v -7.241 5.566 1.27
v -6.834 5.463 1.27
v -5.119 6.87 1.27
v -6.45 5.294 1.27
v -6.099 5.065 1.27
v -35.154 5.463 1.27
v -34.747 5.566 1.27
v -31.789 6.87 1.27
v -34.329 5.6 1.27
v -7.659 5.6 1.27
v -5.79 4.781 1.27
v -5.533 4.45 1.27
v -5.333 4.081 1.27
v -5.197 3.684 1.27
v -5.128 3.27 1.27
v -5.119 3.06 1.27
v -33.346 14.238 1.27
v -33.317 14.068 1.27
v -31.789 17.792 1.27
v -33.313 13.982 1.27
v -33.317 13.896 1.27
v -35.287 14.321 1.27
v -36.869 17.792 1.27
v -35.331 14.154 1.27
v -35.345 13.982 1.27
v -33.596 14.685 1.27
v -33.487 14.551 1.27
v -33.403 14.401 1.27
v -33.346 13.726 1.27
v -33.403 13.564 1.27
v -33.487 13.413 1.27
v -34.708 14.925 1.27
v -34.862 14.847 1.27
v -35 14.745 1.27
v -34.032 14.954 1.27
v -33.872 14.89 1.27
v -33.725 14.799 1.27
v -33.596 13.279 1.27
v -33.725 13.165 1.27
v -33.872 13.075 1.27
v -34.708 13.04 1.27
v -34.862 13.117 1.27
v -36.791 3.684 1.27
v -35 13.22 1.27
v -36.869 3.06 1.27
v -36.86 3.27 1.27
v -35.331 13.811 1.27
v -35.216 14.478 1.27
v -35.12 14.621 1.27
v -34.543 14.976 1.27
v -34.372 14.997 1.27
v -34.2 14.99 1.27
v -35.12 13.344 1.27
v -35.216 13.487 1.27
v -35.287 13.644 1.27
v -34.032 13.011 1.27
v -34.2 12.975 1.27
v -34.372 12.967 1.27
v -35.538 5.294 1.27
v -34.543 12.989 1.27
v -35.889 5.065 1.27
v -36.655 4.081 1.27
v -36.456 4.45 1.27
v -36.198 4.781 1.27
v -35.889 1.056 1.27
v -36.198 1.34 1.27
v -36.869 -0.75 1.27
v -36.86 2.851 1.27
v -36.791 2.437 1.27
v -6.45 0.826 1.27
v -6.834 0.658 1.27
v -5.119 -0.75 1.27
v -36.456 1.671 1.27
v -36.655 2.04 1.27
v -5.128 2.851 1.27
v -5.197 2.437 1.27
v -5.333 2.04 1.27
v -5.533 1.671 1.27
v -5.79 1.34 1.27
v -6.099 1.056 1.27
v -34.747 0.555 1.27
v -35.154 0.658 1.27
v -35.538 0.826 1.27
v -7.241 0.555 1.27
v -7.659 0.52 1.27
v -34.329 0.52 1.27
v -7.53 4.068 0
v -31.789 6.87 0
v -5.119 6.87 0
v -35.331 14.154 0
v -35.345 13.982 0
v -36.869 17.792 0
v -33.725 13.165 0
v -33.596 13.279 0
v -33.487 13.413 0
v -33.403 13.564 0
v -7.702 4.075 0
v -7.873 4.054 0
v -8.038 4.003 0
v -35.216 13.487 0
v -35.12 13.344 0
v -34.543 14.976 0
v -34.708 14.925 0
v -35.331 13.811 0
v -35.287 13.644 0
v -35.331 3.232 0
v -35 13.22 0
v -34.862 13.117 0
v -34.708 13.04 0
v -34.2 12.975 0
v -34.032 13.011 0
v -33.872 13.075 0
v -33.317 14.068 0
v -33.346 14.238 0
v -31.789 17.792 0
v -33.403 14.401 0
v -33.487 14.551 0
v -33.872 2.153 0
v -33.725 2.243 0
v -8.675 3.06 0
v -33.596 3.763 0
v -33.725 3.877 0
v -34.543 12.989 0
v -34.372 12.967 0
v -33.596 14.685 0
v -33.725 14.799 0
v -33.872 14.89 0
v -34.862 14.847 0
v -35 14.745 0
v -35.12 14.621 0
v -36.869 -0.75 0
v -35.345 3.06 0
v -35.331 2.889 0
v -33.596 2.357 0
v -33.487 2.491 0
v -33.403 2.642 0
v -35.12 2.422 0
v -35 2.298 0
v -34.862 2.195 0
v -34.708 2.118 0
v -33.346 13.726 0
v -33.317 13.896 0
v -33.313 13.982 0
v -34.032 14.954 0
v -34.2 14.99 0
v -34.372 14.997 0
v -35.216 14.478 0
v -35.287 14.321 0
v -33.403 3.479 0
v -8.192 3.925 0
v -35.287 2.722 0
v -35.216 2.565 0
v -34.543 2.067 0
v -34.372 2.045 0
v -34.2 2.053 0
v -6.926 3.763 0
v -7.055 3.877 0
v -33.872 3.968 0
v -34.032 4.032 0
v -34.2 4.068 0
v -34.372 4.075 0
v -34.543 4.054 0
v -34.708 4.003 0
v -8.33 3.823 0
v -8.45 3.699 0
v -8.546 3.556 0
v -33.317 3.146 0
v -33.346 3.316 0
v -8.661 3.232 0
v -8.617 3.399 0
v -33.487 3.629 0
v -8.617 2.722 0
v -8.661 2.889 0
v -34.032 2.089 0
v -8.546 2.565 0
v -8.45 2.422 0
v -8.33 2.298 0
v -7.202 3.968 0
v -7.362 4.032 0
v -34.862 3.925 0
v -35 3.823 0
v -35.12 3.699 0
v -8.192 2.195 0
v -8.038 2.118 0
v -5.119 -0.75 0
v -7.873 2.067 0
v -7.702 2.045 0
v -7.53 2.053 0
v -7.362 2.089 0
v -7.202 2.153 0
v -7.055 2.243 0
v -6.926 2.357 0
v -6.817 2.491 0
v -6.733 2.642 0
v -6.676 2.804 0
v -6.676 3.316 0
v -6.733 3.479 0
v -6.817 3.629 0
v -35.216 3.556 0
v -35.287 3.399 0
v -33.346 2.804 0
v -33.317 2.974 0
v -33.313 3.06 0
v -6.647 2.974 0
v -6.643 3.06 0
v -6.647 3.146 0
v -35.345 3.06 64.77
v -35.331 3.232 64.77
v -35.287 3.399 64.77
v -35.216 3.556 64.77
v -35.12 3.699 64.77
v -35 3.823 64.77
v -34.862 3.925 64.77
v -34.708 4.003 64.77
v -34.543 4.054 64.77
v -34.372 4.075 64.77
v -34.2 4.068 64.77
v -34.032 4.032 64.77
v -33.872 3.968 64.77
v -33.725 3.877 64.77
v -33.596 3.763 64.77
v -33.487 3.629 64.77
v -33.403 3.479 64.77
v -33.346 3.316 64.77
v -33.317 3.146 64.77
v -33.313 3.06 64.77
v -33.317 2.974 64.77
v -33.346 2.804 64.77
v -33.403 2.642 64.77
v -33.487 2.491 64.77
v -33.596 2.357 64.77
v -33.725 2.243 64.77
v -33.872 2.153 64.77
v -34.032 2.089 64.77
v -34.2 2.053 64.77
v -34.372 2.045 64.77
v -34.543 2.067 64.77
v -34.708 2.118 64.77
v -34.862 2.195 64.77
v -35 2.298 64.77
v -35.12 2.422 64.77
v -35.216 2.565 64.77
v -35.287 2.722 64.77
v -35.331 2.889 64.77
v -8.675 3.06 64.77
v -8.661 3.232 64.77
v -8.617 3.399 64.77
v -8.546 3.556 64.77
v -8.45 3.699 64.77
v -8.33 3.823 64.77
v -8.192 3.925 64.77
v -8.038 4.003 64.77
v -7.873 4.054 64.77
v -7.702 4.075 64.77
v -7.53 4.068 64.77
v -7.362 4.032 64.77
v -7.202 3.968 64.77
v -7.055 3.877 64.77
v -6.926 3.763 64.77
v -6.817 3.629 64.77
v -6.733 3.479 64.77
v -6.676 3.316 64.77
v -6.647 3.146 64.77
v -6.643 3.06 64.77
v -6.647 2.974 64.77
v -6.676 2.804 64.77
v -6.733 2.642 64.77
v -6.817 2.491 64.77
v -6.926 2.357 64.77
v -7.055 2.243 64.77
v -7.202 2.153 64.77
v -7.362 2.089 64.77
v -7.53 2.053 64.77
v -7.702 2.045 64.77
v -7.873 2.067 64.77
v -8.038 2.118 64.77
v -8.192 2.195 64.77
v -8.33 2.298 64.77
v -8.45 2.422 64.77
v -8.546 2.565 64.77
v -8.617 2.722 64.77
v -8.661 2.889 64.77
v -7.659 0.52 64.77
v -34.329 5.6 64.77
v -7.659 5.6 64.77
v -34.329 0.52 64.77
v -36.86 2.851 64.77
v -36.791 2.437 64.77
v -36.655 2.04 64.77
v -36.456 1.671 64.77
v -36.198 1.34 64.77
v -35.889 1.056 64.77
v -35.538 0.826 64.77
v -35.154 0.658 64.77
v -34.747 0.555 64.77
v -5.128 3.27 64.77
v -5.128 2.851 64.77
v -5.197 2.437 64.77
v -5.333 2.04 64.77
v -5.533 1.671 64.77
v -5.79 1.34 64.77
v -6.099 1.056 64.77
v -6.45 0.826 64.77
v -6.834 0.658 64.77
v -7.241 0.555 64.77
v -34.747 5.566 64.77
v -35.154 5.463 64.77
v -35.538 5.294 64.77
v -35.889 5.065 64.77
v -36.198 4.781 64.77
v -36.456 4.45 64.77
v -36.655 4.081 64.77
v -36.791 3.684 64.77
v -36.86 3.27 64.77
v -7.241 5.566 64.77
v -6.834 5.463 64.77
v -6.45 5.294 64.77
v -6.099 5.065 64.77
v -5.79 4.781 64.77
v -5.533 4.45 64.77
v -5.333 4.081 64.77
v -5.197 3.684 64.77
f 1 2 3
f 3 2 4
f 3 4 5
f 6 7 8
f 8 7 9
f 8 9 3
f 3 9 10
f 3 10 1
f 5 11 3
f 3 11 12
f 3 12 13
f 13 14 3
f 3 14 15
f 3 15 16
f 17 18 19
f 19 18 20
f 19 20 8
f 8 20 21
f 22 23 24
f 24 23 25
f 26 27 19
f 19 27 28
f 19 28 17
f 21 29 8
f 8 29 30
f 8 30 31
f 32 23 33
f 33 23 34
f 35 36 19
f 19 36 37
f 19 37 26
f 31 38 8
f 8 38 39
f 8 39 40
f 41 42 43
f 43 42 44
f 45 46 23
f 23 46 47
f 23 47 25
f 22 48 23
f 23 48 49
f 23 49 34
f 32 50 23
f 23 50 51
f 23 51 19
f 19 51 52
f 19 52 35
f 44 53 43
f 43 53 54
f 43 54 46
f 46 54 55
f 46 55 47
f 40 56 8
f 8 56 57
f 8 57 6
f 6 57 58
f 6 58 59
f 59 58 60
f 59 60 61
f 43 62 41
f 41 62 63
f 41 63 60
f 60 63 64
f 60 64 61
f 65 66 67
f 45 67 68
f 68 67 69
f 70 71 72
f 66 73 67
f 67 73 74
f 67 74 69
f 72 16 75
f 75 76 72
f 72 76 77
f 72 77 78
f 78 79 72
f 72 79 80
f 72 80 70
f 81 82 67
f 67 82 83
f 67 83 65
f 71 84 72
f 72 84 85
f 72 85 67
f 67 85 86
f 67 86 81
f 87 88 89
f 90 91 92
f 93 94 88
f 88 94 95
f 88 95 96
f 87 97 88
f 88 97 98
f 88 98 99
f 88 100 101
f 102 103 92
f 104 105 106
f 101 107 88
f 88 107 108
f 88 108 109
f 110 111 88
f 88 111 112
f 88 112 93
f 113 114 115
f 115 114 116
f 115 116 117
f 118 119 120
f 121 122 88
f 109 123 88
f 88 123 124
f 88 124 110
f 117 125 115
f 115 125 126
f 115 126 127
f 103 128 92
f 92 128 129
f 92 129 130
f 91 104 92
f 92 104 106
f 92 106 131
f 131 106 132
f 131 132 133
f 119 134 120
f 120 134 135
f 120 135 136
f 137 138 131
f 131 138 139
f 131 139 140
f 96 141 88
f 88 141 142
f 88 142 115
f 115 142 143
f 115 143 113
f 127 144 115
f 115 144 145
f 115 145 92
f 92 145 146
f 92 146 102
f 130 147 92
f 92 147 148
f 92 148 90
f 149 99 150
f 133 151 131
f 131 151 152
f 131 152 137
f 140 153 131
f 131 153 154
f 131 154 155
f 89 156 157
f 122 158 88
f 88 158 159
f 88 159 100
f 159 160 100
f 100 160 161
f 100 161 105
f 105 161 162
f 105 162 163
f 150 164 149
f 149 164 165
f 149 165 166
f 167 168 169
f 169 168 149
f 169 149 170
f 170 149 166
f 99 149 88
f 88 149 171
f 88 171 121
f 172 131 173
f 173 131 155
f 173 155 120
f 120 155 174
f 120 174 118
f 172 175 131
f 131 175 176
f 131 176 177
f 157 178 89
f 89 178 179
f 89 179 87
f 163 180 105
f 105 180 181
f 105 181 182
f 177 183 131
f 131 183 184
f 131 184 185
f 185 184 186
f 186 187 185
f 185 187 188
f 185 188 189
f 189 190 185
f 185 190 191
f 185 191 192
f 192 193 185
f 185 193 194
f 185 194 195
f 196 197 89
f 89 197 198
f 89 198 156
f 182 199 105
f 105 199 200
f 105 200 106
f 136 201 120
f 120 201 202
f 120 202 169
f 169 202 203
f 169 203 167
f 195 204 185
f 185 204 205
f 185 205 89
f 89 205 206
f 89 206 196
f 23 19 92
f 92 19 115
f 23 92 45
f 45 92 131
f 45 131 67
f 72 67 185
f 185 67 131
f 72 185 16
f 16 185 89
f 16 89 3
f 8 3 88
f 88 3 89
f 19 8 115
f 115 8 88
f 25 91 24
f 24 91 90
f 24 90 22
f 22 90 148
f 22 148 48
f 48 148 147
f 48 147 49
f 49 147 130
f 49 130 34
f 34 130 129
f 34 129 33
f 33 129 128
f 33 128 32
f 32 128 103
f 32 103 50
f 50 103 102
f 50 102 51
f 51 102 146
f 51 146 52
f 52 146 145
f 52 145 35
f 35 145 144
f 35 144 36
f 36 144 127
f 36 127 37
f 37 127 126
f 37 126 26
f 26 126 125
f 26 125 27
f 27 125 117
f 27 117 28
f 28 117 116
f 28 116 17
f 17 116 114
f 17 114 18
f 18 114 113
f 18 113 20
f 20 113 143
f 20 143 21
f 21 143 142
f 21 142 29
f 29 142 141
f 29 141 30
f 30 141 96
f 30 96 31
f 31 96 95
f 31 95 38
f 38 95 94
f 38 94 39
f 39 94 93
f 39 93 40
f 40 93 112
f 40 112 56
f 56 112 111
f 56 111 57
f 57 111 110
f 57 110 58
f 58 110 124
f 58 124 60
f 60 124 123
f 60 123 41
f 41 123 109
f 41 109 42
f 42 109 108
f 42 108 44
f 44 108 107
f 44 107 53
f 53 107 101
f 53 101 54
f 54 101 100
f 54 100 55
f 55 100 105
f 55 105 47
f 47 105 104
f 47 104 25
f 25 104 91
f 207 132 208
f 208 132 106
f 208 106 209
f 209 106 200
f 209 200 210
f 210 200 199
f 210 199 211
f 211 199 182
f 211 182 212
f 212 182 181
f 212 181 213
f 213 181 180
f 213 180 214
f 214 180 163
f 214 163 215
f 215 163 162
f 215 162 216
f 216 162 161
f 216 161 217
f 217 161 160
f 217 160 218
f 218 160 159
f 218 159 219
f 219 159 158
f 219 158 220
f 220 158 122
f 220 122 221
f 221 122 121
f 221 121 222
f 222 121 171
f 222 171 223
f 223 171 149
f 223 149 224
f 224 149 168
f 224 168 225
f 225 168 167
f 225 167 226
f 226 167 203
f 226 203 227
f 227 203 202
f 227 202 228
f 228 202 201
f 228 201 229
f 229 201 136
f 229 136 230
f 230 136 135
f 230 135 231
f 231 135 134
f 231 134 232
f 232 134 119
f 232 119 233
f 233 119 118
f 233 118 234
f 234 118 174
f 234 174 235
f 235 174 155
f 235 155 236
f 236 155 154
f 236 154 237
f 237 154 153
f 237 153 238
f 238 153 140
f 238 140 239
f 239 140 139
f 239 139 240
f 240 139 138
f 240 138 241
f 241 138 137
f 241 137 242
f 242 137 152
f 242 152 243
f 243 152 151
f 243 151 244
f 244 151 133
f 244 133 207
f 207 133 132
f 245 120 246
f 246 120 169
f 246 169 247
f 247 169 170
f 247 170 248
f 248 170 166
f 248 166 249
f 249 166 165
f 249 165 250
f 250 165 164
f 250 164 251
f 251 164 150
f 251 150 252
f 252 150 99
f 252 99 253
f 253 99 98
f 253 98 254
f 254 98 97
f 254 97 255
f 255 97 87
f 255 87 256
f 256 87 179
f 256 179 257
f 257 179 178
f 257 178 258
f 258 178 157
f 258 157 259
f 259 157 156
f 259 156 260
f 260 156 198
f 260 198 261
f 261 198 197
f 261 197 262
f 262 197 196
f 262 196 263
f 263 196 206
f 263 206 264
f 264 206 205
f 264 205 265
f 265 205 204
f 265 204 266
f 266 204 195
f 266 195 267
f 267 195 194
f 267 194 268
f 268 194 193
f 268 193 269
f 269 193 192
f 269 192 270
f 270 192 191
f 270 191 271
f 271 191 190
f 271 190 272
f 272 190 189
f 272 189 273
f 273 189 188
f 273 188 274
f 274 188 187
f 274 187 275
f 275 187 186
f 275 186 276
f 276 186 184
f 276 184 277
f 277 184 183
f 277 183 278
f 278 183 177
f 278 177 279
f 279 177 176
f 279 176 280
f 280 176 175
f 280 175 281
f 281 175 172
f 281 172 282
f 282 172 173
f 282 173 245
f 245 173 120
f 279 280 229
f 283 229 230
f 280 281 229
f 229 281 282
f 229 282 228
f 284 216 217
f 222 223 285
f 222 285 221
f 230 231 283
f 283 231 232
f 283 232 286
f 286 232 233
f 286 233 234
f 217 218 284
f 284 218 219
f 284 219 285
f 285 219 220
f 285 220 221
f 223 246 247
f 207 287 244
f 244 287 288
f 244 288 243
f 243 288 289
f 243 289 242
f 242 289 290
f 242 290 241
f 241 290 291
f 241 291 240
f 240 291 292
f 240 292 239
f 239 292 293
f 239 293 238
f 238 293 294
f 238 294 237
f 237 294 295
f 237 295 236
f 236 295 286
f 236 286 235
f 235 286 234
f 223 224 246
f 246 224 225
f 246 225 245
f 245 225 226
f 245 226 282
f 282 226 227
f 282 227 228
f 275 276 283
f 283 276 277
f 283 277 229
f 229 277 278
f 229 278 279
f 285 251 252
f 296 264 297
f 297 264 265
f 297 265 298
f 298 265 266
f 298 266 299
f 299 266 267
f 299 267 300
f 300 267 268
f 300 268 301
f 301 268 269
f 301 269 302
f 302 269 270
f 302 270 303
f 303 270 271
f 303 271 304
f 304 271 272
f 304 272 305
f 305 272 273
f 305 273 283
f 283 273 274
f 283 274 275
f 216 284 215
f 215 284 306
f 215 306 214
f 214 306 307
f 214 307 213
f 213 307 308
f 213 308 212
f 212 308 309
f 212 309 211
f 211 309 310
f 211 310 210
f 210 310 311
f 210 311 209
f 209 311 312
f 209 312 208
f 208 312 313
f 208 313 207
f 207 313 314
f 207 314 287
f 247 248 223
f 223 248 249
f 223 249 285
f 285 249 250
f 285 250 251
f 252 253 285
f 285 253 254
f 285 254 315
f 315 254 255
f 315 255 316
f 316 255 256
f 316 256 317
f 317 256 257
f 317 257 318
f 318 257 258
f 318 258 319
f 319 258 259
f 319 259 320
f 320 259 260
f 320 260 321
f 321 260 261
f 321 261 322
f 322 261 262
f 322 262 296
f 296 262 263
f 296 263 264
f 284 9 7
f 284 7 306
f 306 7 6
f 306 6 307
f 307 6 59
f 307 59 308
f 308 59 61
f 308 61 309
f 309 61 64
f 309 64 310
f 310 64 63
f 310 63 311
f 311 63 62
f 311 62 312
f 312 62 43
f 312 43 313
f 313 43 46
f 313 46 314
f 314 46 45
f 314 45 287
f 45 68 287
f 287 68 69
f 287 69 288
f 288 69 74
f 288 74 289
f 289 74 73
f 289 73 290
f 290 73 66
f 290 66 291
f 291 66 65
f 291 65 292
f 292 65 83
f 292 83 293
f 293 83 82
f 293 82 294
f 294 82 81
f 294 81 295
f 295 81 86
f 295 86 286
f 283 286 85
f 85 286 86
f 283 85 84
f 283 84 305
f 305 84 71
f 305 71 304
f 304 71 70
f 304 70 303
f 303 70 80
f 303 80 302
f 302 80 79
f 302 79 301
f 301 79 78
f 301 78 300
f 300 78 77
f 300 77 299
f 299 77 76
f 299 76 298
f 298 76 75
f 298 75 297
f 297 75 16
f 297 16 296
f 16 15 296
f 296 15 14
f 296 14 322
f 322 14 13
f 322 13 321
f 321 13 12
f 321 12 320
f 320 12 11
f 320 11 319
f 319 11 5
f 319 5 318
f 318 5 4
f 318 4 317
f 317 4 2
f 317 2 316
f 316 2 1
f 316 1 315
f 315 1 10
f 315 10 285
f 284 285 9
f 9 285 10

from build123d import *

# Parameters (mm, degrees)
SKETCH1_R           = 1.016
BOSS_EXTRUDE1_DEPTH = 1.27
SKETCH2_R           = 1.016
BOSS_EXTRUDE3_DEPTH = 63.5


with BuildPart() as part:
    # Sketch1 → Boss-Extrude1 (new body)
    with BuildSketch(Plane.XY):
        Polygon((-36.869116619, 17.792333901), (-36.869116619, -0.749666099), (-5.119116619, -0.749666099), (-5.119116619, 6.870333901), (-31.789116619, 6.870333901), (-31.789116619, 17.792333901), align=None)
        with Locations((-34.329116619, 13.982333901)):
            Circle(SKETCH1_R, mode=Mode.SUBTRACT)
        with Locations((-34.329116619, 3.060333901)):
            Circle(SKETCH1_R, mode=Mode.SUBTRACT)
        with Locations((-7.659116619, 3.060333901)):
            Circle(SKETCH1_R, mode=Mode.SUBTRACT)
    extrude(amount=BOSS_EXTRUDE1_DEPTH)

    # Sketch2 → Boss-Extrude3 (add)
    with BuildSketch(Plane.XY.offset(1.27)):
        with BuildLine():
            Line((-34.329116619, 5.600333901), (-7.659116619, 5.600333901))
            ThreePointArc((-7.659116619, 5.600333901), (-5.119116619, 3.060333901), (-7.659116619, 0.520333901))
            Line((-7.659116619, 0.520333901), (-34.329116619, 0.520333901))
            ThreePointArc((-34.329116619, 0.520333901), (-36.869116619, 3.060333901), (-34.329116619, 5.600333901))
        make_face()
        with Locations((-34.329116619, 3.060333901)):
            Circle(SKETCH2_R, mode=Mode.SUBTRACT)
        with Locations((-7.659116619, 3.060333901)):
            Circle(SKETCH2_R, mode=Mode.SUBTRACT)
    extrude(amount=BOSS_EXTRUDE3_DEPTH)


solid = part.part
